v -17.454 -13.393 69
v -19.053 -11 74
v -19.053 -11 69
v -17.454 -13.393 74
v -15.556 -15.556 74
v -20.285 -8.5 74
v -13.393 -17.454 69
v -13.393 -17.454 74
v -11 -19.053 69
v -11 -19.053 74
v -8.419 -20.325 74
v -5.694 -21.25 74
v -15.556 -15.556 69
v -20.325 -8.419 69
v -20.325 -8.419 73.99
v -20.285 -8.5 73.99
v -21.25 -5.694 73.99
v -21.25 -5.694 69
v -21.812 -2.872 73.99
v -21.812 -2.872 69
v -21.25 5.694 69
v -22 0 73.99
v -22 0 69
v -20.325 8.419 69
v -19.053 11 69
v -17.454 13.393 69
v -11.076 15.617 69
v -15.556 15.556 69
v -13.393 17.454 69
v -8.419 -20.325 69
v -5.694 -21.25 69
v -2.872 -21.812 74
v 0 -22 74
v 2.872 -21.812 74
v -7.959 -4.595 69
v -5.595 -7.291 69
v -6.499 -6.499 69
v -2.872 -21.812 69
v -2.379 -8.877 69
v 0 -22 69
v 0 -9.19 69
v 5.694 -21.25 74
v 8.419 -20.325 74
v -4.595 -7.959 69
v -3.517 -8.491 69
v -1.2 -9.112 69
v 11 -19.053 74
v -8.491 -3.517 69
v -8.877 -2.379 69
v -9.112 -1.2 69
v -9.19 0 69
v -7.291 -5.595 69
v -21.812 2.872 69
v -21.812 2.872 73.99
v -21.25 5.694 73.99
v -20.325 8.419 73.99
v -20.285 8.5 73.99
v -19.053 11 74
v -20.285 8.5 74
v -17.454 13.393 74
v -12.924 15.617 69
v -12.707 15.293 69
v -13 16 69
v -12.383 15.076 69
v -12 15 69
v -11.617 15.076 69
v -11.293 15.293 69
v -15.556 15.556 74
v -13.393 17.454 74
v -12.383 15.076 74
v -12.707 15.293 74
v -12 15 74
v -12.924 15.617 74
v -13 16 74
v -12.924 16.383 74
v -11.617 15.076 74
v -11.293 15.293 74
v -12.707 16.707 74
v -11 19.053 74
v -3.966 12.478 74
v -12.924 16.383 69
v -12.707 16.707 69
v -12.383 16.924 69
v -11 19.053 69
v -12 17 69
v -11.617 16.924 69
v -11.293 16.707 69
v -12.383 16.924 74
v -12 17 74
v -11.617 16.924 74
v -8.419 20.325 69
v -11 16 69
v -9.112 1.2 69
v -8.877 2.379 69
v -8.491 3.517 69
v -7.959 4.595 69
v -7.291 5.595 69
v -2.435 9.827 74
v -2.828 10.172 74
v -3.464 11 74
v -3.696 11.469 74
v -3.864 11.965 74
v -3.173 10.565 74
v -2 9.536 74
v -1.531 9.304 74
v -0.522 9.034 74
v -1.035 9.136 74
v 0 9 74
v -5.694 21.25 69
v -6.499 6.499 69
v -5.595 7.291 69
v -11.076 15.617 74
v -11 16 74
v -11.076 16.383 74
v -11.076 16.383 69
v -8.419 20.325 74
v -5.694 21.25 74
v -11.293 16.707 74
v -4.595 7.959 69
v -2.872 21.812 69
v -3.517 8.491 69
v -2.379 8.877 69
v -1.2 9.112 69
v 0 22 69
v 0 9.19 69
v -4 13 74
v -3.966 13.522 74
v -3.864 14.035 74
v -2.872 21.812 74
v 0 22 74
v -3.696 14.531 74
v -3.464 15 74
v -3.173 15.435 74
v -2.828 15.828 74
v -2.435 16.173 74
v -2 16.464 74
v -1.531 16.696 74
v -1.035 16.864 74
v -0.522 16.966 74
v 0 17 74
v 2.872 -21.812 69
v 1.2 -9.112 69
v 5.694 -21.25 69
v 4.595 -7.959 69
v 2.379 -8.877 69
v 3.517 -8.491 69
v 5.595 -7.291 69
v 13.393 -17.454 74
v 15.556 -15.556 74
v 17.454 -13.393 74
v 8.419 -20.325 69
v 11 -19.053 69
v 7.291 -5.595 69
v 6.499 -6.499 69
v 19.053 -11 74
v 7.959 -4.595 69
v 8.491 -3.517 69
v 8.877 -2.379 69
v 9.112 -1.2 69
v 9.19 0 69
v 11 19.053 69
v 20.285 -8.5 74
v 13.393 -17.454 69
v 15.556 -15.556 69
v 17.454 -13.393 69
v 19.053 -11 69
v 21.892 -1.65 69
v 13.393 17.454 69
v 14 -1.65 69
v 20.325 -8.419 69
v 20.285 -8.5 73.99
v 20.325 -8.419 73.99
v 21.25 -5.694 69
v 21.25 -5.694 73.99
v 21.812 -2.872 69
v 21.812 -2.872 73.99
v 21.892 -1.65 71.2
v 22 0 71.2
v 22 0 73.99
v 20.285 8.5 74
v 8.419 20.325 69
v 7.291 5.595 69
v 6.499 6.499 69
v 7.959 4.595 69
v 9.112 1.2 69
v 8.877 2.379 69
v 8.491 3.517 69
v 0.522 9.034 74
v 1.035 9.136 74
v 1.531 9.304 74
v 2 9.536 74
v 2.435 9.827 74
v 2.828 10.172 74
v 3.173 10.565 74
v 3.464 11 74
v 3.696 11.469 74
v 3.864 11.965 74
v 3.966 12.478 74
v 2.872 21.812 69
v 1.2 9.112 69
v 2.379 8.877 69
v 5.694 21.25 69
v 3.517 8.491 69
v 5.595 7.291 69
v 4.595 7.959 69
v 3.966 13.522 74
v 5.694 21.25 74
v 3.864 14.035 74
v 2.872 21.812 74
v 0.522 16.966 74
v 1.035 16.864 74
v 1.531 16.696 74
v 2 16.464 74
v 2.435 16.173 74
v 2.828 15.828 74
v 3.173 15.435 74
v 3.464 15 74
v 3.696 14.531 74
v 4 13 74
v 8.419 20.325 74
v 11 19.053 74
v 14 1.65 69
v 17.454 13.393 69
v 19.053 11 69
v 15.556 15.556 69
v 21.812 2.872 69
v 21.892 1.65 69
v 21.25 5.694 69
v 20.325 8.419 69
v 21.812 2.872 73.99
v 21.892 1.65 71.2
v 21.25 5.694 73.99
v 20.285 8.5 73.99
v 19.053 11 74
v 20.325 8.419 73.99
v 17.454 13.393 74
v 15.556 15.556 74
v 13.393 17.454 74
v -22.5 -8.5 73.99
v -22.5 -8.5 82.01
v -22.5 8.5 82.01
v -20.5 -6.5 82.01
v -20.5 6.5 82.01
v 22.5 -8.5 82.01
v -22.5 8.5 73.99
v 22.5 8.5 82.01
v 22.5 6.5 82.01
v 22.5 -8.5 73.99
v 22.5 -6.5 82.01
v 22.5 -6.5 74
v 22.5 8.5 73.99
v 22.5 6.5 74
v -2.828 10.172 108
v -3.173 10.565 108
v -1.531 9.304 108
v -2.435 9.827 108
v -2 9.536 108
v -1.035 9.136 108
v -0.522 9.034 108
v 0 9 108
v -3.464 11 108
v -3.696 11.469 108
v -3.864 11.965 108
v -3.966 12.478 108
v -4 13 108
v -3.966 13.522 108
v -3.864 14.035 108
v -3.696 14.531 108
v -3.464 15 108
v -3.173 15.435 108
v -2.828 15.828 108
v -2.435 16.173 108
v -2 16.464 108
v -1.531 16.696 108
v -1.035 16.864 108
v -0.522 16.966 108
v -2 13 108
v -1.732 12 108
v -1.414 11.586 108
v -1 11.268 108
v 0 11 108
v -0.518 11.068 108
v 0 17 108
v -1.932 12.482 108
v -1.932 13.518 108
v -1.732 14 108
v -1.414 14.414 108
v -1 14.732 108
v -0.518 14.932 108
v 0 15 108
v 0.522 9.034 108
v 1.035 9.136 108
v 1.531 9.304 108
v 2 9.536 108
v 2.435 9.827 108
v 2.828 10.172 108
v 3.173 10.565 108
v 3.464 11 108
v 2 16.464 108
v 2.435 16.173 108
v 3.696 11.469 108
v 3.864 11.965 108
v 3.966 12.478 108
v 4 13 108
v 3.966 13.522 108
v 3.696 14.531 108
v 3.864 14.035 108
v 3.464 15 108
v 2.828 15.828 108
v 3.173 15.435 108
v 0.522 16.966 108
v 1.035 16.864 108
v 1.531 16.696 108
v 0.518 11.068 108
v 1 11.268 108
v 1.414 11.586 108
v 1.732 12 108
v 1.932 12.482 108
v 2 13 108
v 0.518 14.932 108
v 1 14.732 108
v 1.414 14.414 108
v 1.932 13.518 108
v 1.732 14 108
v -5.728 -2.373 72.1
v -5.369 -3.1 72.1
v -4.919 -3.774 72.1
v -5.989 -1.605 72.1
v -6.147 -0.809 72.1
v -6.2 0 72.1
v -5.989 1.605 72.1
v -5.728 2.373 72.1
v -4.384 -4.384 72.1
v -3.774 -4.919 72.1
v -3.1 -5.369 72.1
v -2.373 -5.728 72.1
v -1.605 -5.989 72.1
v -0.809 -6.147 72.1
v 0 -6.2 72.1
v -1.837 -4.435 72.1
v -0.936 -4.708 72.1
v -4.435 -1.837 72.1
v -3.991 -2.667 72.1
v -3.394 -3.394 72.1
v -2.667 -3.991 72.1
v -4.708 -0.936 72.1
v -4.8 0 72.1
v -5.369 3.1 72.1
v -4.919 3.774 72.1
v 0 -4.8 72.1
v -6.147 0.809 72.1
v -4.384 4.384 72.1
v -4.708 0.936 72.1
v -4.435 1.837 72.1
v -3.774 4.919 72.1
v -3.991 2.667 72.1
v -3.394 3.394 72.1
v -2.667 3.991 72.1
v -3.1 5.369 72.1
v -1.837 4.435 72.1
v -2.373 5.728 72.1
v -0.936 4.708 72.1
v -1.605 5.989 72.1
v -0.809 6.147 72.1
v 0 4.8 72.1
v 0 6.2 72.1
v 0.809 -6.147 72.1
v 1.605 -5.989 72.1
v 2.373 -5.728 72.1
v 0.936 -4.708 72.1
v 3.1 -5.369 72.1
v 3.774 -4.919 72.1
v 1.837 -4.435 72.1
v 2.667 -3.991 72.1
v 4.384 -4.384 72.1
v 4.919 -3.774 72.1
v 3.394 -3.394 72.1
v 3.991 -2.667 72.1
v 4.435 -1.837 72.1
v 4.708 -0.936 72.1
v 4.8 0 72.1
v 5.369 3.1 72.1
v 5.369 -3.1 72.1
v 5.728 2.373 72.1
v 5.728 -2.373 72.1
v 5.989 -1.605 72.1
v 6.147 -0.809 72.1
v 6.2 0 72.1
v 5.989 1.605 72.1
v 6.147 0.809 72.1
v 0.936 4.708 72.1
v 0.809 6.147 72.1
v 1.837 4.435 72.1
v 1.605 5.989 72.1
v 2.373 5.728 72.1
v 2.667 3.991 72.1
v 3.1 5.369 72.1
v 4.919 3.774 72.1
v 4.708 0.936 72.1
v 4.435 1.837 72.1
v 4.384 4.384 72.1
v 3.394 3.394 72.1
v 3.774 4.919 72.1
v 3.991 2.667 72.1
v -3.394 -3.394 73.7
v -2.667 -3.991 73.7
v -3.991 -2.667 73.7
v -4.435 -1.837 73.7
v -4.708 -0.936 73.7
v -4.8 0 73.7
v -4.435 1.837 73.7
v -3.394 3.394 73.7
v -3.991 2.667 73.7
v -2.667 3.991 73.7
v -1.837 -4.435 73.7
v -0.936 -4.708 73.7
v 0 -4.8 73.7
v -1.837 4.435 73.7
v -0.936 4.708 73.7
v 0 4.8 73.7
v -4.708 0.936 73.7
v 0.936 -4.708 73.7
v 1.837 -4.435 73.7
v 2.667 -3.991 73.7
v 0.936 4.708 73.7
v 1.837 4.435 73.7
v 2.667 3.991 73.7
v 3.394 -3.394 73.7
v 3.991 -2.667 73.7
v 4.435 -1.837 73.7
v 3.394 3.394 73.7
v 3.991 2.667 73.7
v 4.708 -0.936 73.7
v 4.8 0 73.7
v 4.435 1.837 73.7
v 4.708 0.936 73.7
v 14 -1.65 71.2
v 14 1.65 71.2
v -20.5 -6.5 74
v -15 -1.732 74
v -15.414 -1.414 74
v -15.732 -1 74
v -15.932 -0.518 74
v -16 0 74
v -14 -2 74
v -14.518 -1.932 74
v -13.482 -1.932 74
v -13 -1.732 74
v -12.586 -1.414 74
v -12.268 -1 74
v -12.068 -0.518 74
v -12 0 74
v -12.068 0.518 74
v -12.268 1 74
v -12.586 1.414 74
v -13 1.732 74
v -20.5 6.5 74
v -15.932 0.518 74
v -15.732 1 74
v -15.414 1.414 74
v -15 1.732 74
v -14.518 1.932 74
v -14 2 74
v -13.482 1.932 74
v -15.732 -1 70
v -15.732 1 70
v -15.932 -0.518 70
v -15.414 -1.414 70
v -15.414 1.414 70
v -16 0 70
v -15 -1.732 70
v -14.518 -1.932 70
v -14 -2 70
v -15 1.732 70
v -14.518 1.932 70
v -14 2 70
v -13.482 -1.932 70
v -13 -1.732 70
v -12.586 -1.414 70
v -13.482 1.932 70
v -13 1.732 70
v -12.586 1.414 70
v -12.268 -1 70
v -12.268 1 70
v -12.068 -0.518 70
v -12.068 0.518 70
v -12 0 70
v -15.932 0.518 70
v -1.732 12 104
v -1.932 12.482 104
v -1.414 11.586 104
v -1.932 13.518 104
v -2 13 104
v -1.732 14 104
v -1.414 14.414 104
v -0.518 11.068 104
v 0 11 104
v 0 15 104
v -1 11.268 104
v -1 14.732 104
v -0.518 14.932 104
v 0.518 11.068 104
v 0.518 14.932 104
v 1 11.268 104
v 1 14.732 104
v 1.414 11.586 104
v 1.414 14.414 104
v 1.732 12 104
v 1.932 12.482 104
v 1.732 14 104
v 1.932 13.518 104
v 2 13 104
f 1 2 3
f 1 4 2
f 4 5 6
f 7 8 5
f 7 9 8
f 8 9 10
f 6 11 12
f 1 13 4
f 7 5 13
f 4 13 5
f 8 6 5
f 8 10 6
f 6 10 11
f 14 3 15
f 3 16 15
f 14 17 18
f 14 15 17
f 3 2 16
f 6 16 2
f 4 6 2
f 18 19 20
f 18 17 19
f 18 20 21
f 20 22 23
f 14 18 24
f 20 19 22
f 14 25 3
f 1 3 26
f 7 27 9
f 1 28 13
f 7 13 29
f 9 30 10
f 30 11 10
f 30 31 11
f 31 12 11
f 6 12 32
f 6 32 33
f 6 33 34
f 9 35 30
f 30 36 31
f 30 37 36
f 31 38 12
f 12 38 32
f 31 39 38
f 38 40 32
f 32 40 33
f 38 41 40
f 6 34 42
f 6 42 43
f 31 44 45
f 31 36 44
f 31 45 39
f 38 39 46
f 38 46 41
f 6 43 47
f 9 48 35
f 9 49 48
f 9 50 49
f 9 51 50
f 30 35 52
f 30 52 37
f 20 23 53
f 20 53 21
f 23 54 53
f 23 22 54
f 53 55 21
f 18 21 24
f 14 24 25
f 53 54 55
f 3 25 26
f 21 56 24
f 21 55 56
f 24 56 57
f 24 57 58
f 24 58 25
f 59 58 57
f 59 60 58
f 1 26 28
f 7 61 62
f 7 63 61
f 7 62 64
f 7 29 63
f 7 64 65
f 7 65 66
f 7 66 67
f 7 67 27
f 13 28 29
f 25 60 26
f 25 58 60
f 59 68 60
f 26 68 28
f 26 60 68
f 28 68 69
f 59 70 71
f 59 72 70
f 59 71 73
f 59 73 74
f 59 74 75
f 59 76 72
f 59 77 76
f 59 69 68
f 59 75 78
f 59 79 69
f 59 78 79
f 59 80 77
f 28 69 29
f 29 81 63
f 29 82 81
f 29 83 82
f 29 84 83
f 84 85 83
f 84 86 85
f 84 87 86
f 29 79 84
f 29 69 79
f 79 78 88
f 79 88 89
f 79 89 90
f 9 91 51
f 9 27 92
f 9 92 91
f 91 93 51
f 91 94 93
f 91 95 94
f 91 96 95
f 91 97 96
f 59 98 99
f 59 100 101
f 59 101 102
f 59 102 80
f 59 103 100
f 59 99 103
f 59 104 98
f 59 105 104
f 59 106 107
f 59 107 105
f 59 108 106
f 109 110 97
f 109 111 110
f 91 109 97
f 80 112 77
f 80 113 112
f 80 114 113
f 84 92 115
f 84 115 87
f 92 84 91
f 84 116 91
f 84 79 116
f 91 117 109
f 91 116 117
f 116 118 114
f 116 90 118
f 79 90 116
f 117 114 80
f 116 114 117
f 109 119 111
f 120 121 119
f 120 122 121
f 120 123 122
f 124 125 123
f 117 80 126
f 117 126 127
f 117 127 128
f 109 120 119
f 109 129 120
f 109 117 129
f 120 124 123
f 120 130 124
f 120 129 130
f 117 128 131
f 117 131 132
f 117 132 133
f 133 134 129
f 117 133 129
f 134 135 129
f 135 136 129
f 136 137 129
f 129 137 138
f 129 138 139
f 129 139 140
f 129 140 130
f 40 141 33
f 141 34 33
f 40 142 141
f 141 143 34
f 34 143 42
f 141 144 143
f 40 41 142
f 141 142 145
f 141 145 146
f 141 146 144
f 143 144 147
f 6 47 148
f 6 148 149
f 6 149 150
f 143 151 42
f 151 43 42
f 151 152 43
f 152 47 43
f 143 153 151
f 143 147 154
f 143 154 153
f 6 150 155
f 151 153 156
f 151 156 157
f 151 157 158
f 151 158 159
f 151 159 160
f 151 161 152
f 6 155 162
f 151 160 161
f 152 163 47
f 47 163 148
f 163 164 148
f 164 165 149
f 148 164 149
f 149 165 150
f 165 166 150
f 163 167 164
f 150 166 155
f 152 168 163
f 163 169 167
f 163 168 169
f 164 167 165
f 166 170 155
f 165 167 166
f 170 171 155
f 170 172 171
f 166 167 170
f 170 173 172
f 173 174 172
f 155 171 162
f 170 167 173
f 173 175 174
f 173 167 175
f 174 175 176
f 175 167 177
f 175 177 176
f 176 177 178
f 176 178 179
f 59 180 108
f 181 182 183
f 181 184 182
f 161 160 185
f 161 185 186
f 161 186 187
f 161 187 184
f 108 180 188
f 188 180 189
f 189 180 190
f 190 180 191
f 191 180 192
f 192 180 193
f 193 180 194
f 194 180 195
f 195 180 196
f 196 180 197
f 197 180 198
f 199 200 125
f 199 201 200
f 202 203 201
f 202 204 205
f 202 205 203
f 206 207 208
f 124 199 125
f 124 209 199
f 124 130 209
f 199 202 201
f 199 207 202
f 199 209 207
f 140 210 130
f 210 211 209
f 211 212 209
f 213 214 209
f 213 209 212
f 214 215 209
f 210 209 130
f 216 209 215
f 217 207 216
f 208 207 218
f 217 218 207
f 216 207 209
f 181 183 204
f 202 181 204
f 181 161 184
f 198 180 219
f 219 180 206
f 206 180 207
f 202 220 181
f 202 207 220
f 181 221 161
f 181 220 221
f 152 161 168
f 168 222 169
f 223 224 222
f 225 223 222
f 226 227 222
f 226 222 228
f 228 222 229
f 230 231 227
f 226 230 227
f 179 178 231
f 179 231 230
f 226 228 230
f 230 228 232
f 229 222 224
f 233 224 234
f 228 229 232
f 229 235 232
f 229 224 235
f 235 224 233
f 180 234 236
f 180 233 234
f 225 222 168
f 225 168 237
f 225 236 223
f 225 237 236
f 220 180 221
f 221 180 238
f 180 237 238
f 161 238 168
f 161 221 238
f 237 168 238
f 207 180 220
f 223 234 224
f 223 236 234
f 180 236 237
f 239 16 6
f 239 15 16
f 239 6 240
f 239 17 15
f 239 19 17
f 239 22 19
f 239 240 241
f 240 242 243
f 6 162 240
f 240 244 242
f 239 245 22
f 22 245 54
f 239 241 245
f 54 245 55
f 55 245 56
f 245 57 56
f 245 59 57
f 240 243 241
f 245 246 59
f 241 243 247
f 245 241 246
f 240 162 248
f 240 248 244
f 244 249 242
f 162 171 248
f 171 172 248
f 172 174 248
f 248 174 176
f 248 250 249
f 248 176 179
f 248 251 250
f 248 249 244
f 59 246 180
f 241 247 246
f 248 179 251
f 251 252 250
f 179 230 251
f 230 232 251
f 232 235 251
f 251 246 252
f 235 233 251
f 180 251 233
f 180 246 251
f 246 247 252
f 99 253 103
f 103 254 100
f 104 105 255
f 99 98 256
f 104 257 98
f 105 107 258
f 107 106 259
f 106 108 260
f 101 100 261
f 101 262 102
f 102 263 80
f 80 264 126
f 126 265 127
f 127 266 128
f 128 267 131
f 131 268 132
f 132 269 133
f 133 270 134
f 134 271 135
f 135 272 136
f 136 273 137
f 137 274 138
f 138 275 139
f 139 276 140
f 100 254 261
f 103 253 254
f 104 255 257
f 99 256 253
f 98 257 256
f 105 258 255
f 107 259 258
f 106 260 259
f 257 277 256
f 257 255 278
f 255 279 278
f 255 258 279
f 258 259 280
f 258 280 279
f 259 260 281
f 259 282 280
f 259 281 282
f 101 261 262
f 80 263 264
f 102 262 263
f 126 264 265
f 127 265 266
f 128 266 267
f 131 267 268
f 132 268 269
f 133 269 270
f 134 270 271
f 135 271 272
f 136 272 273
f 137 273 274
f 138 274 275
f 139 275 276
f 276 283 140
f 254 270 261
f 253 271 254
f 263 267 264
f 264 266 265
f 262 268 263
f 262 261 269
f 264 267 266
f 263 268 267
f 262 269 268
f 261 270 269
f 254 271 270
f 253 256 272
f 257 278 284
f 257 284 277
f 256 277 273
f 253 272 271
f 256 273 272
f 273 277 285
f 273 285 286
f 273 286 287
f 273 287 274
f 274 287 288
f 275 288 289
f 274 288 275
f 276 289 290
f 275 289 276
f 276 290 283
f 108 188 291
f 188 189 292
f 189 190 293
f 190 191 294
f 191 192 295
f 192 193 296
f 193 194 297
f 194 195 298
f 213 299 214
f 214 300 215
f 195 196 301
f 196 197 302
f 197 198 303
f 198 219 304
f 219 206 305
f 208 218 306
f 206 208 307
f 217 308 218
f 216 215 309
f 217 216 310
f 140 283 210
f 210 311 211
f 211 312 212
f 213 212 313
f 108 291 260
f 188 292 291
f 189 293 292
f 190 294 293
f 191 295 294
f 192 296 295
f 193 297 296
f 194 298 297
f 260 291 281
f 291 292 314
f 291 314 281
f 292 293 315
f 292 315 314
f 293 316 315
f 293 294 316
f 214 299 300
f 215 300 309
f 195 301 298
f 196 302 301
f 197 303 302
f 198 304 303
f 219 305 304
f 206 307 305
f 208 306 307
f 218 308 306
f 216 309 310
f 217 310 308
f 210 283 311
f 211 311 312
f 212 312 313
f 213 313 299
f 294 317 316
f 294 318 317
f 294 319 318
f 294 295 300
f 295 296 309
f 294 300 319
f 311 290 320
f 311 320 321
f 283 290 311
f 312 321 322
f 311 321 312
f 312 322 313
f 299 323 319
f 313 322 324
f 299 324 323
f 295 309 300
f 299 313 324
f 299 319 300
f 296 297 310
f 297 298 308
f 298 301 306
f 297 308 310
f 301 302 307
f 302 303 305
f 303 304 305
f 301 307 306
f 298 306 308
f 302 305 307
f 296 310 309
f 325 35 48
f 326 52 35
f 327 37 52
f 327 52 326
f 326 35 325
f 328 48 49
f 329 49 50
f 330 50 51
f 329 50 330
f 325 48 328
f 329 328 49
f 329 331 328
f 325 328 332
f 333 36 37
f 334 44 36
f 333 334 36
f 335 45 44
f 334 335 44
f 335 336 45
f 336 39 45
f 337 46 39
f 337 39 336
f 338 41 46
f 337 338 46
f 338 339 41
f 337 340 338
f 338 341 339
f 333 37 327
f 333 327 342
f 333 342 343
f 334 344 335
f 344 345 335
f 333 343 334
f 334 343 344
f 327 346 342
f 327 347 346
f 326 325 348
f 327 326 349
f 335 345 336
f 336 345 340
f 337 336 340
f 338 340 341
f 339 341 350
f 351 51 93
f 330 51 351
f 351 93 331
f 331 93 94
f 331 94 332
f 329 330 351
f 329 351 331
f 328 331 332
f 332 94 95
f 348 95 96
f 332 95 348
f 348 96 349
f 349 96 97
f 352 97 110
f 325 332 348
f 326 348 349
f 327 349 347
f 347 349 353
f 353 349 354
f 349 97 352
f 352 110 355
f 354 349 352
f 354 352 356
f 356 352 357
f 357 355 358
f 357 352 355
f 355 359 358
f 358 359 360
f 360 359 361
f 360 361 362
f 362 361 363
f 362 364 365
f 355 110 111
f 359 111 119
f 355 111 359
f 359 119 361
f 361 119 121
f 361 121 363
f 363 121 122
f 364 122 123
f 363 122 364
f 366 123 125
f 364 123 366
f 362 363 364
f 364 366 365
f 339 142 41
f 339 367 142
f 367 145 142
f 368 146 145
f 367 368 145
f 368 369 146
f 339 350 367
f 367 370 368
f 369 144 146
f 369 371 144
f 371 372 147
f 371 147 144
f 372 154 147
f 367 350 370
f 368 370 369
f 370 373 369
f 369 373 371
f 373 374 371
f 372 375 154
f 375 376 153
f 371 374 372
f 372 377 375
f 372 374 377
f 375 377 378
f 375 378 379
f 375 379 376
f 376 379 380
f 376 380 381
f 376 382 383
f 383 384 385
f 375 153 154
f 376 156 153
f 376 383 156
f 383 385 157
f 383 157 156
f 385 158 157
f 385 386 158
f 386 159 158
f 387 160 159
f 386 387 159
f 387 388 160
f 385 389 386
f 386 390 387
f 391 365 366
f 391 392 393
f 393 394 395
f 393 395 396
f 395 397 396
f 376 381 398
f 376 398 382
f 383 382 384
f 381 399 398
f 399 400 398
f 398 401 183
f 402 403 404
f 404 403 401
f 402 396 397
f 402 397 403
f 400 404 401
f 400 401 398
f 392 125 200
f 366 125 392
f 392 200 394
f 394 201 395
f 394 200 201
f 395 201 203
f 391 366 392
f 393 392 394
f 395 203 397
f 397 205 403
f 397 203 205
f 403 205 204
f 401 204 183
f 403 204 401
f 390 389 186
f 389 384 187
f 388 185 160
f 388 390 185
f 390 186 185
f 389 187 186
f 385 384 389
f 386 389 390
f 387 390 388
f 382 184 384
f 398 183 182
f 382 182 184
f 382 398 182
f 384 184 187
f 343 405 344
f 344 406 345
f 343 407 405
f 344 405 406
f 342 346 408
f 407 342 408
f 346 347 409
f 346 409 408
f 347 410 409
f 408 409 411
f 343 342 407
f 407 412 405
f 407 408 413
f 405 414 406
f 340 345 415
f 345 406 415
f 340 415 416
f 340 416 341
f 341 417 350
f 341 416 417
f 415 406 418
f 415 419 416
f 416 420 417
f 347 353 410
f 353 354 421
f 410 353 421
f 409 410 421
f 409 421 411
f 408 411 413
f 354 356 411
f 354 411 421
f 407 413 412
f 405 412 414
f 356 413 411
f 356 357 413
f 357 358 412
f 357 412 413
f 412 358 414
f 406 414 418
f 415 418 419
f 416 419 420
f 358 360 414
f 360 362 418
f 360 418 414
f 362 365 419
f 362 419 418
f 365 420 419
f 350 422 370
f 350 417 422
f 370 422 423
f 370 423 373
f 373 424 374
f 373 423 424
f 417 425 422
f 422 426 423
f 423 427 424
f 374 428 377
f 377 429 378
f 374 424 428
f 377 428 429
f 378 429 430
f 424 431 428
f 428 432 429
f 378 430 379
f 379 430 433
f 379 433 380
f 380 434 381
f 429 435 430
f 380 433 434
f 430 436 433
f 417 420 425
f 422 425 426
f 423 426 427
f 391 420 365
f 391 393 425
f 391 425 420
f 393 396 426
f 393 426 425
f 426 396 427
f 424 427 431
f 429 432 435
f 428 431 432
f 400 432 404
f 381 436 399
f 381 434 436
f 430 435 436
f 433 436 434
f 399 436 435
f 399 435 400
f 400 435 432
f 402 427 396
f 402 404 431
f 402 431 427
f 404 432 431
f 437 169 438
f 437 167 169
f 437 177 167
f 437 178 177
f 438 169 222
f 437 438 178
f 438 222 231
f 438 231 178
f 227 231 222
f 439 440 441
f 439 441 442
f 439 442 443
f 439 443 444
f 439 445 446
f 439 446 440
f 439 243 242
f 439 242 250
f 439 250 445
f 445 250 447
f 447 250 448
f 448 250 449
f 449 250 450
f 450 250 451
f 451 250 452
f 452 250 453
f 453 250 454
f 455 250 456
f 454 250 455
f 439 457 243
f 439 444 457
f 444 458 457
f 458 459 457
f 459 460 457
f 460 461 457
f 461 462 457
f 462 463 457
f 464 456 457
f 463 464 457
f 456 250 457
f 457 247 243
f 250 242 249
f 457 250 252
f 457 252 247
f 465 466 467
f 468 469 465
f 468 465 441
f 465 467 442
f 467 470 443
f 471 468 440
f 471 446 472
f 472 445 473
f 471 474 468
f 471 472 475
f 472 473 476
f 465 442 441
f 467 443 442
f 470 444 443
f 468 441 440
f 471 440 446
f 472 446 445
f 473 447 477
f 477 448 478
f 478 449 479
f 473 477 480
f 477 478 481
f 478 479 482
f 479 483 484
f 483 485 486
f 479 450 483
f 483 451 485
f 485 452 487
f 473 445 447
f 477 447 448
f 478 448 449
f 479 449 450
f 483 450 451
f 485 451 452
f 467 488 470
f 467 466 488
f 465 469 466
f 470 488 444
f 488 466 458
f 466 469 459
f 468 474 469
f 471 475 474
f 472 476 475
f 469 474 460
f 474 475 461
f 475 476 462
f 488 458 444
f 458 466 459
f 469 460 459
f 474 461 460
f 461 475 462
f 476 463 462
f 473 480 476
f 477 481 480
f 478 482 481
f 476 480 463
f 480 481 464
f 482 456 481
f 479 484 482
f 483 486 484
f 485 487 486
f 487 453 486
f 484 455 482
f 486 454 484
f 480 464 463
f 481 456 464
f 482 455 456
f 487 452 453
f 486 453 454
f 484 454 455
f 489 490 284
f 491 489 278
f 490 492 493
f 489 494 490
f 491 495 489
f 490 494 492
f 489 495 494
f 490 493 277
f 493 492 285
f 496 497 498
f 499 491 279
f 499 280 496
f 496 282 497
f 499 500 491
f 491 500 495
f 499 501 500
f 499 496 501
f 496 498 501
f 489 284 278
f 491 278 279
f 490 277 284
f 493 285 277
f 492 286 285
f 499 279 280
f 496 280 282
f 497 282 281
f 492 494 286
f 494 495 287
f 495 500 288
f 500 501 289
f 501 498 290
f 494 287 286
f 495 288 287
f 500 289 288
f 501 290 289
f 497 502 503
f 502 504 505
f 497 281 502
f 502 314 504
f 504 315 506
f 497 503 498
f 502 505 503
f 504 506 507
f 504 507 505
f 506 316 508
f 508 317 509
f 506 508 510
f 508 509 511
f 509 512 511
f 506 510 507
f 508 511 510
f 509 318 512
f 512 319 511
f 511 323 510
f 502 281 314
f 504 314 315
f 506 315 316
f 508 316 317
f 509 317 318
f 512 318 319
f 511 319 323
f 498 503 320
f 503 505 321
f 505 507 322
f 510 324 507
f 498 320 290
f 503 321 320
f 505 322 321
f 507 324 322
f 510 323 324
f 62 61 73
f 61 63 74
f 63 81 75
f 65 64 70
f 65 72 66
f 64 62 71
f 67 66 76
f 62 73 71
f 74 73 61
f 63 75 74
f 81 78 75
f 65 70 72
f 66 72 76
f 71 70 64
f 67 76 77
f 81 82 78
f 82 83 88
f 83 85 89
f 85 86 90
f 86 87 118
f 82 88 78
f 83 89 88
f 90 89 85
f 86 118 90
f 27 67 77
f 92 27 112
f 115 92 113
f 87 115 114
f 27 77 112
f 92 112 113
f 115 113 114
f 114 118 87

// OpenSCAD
// =====================================================================
//  p28_upper_wrist_seat.scad - P28 upper wrist seat with weight post (+ P29 weight cap, P47 load-cell filler)
//  PROJECT SCRATCH · 05-engineering/cad/frame · units: mm · frame: global (section 2); P29 / P47 local
//  Sources: mechanical.md section 7.1 (seat), 6.6 (post), 7.4 (load-cell pocket), 11 P28/P29/P47.
//  PART = "seat" | "cap" | "filler" | "assembly"
//  CONFLICTS: the 41 x 13 x 8 load-cell pocket and the diam 8 post cannot share X 0 / Y 0 (C-H6):
//  the post is offset to Y +13; the pocket floor carries one M3 insert at X -14 (section 11 lists 1 insert).
// =====================================================================
include <lib_sp1.scad>
PART = "seat";

// ---- seat plate (section 7.1) ----
D = 44;  Z0 = 69;  Z1 = 74;                      // diam 44 x 5, bottom = contact face at the seat plane Z 69
CONE_D0 = 18.4;  CONE_D1 = 12.4;  CONE_H = 3.1;   // conical recess
MAG_D = 9.6;  MAG_H = 1.6;                        // K&J D61 pocket at the recess floor
KEY_W = 3.3;  KEY_D = 2.2;  KEY_R0 = 14;  KEY_R1 = 22;   // radial key slot on +X (peg at r 17 on the lid)
// ---- load-cell pocket block (section 7.4): 41 x 13 x 8 pocket open at the top and toward +X (riser arm side) ----
PK_X = 45;  PK_Y = 17;  PK_Z1 = 82;  POCKET = [41, 13, 8];  SEAT_SCREW_X = -14;
// ---- weight post (section 6.6): diam 8 x 34, M3 insert at the top ----
POST_D = 8;  POST_XY = [0, 13];  POST_Z1 = 108;
EYE_D = 2;  EYE_XY = [-12, 16];                   // tether eyelet (ADDENDUM-1: 25 mm tether)

module p28_upper_wrist_seat() difference() {
    union() {
        cyl_z(D / 2, Z0, Z1);
        cbox(0, 0, (Z1 + PK_Z1) / 2, PK_X, PK_Y, PK_Z1 - Z1 + 0.02);
        cyl_z(POST_D / 2, Z1 - 0.01, POST_Z1, POST_XY[0], POST_XY[1]);
    }
    cyl_z(CONE_D0 / 2, Z0 - 0.01, Z0 + CONE_H, r2 = CONE_D1 / 2);                     // 45 deg recess
    cyl_z(MAG_D / 2, Z0 + CONE_H - 0.01, Z0 + CONE_H + MAG_H, fn = 32);               // D61 pocket (0.3 roof: C-H7)
    box(KEY_R0, KEY_R1 + 1, -KEY_W / 2, KEY_W / 2, Z0 - 1, Z0 + KEY_D);               // key slot
    box(-POCKET[0] / 2, POCKET[0] / 2 + 5, -POCKET[1] / 2, POCKET[1] / 2, Z1, PK_Z1 + 1);   // load-cell / filler pocket
    ins_z(M3_INS_D, M3_INS_L, SEAT_SCREW_X, 0, Z1);                                   // filler screw
    ins_z(M3_INS_D, M3_INS_L, POST_XY[0], POST_XY[1], POST_Z1);                       // weight-cap thumbscrew
    cyl_z(EYE_D / 2, Z0 - 1, Z1 + 1, EYE_XY[0], EYE_XY[1], fn = 16);                  // tether eyelet
}

// ---- P29 weight cap (section 6.6, 11): local frame, disc z 0..4 ----
CAP_D = 16;  CAP_T = 4;  CAP_HOLE = M3_CLEAR;  KNURL_N = 12;  KNURL_D = 1.2;
module p29_weight_cap() difference() {
    cyl_z(CAP_D / 2, 0, CAP_T);
    cyl_z(CAP_HOLE / 2, -1, CAP_T + 1, fn = 24);
    for (i = [0 : KNURL_N - 1]) cyl_z(KNURL_D / 2, -1, CAP_T + 1, CAP_D / 2 * cos(360 * i / KNURL_N), CAP_D / 2 * sin(360 * i / KNURL_N), fn = 12);
}

// ---- P47 load-cell filler bar (section 7.4, 11): local frame, bar along X, z 0..6 ----
FIL_L = 40;  FIL_W = 12;  FIL_T = 6;
FIL_HOLES = [[-14, M3_CLEAR], [14, M3_PILOT], [4, M3_PILOT]];   // -14 clears to the seat insert; +14/+4 pilots for the P26 arm screws
module p47_load_cell_filler() difference() {
    cbox(0, 0, FIL_T / 2, FIL_L, FIL_W, FIL_T);
    for (h = FIL_HOLES) cyl_z(h[1] / 2, -1, FIL_T + 1, h[0], 0, fn = 24);
}

if (PART == "seat") p28_upper_wrist_seat();
if (PART == "cap") p29_weight_cap();
if (PART == "filler") p47_load_cell_filler();
if (PART == "assembly") {
    color("orange") p28_upper_wrist_seat();
    color("gray") translate([POST_XY[0], POST_XY[1], POST_Z1]) p29_weight_cap();
    color("silver") translate([0, 0, Z1]) p47_load_cell_filler();
}
